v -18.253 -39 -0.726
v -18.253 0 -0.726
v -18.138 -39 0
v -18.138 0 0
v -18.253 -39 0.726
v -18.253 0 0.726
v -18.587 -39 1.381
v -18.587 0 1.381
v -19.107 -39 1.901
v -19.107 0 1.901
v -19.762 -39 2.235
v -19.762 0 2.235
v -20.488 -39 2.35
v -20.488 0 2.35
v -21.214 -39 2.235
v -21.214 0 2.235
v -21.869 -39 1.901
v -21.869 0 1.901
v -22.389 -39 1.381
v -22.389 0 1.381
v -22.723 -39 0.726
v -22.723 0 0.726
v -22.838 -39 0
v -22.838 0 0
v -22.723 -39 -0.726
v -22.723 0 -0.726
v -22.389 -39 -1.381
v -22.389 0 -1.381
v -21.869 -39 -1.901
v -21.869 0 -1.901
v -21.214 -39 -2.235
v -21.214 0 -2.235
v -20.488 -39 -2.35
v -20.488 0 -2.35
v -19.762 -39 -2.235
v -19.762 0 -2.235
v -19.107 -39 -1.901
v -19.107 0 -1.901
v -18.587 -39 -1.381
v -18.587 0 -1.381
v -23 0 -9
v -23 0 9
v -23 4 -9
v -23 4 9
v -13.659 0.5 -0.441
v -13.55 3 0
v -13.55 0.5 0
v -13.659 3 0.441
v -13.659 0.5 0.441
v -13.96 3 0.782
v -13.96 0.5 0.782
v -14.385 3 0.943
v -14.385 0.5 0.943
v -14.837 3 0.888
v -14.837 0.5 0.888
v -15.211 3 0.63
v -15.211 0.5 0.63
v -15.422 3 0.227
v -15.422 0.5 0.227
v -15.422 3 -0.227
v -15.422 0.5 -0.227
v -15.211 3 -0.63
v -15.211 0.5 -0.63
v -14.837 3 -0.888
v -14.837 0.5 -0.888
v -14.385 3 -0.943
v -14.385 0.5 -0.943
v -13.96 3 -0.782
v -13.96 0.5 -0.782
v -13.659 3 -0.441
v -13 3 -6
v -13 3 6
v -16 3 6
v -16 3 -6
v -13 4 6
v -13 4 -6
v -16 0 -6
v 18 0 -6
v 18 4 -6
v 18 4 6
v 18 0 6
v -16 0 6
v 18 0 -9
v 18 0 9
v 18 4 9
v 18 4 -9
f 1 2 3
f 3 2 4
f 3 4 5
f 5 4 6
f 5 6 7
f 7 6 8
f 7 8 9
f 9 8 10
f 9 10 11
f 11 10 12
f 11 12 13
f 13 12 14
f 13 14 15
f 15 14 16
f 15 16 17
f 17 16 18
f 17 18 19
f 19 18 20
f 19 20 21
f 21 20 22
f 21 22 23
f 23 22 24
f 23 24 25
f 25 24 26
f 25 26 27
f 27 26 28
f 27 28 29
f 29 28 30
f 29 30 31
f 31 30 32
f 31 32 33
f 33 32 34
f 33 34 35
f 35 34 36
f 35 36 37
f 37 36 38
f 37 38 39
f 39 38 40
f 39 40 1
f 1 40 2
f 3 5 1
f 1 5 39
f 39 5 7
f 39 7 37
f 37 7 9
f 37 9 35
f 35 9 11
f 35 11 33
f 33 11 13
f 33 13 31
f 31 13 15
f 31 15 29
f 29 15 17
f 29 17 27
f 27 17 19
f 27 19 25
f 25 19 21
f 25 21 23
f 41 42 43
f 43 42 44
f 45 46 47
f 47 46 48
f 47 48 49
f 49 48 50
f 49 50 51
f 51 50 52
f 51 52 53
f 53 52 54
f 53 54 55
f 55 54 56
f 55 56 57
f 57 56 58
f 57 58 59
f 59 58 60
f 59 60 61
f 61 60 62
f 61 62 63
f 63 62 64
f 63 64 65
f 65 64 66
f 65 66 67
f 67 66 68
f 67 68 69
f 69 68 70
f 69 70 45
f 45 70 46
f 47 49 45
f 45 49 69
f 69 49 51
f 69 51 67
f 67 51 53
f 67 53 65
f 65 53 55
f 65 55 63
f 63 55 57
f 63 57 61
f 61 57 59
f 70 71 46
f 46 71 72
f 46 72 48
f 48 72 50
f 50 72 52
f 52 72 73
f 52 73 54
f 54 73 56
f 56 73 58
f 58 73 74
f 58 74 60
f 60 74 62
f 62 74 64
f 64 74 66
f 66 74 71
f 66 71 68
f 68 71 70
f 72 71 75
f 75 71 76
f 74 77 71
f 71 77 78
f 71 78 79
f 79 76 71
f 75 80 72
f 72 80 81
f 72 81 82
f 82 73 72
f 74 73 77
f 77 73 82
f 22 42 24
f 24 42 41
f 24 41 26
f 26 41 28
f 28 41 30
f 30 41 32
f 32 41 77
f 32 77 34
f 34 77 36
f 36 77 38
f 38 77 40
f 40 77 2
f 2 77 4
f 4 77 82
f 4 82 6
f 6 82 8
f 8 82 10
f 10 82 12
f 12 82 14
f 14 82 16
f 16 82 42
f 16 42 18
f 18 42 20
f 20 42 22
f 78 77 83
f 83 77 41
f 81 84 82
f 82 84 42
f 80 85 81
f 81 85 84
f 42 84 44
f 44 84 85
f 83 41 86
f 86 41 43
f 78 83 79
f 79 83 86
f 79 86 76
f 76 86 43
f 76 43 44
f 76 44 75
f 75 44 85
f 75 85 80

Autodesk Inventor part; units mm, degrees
ref_plane "YZ Plane" through (0, 0, 0) normal (1, 0, 0) x (0, 1, 0)
ref_plane "XZ Plane" through (0, 0, 0) normal (0, 1, 0) x (-1, 0, 0)
ref_plane "XY Plane" through (0, 0, 0) normal (0, 0, 1) x (1, 0, 0)
sketch "Sketch1" plane through (0, 0, 0) normal (0, 1, 0) x (-1, 0, 0)
  line L0 (18, 9) -> (-18, 9)
  line L1 (-18, 9) -> (-18, -9)
  line L2 (-18, -9) -> (18, -9)
  line L3 (18, -9) -> (18, 9)
  line L4 (18, 9) -> (-18, -9) construction
  line L5 (-18, 9) -> (18, -9) construction
  point P0 (0, 0)
  dimension "d0" = 18
  dimension "d1" = 36
extrude "Extrusion1" add sketch "Sketch1" along normal blind 4
sketch "Sketch2" plane through (18, 0, 9) normal (1, 0, 0) x (0, 0, -1)
  line L0 (3, 9.8571) -> (15, 9.8571)
  line L1 (15, 9.8571) -> (15, 0)
  line L2 (15, 0) -> (3, 0)
  line L3 (3, 0) -> (3, 9.8571)
  line L4 (0.7991, 7.2165) -> (12.7991, -2.6406) construction
  line L5 (12.7991, 7.2165) -> (0.7991, -2.6406) construction
  line L6 (9, 0) -> (9, 4.0958)
  line L7 (9, 0) -> (15, 0)
  line L8 (0, 0) -> (18, 0) projected
  point P0 (6.7991, 2.2879)
  dimension "d4" = 12
  dimension "d22" = 6
extrude "Extrusion2" cut sketch "Sketch2" against normal blind 34
sketch "Sketch3" plane through (-16, 0, 9) normal (1, 0, 0) x (0, 0, -1)
  line L0 (3, 4) -> (15, 4) projected
  line L1 (15, 4) -> (15, 0) projected
  line L2 (3, 4) -> (15, 4)
  line L3 (15, 4) -> (15, 3)
  line L4 (15, 3) -> (3, 3)
  line L5 (3, 3) -> (3, 4)
  point P0 (9, 0)
  dimension "d7" = 1
extrude "Extrusion3" add sketch "Sketch3" along normal blind 3
sketch "Sketch4" plane through (-16, 3, -6) normal (0, -1, 0) x (1, 0, 0)
  line L0 (0, 12) -> (3, 12) projected
  line L1 (1.5, 12) -> (1.5, 0)
  line L2 (3, 0) -> (0, 0) projected
  line L3 (3, 0) -> (3, 12) projected
  line L4 (3, 6) -> (0, 6)
  line L5 (0, 0) -> (0, 12) projected
  circle A0 centre (1.5, 6) radius 0.95
  point P0 (16, 6)
  dimension "d10" = 1.9
extrude "Extrusion4" add sketch "Sketch4" along normal blind 2.5 contours A0 L4 L1 | L1 L4 A0 | L4 L1 A0 | L4 A0 L1
sketch "Sketch5" plane through (-18, 0, -9) normal (-1, 0, 0) x (0, 0, 1)
  line L0 (18, 0) -> (15, 0) projected
  line L1 (0, 0) -> (0, 4) projected
  line L2 (18, 0) -> (0, 0)
  line L3 (0, 0) -> (0, 1)
  line L4 (0, 1) -> (18, 1)
  line L5 (18, 1) -> (18, 0)
  point P0 (9, 0)
  dimension "d13" = 1
extrude "Extrusion5" add sketch "Sketch5" along normal blind 5
sketch "Sketch6" plane through (-18, 1, 9) normal (0, 1, 0) x (1, 0, 0)
  line L0 (0, 18) -> (0, 0) projected
  circle A0 centre (-2.4881, 9) radius 2.35
  line L1 (36, 18) -> (-5, 18) projected
  line L2 (-5, 18) -> (0, 18)
  line L3 (-2.5, 18) -> (-2.5, 0)
  line L4 (-5, 0) -> (-5, 18) projected
  line L5 (-5, 9) -> (0, 9)
  point P0 (18, 9)
  dimension "d17" = 4.7
extrude "Extrusion6" add sketch "Sketch6" against normal blind 40 contours L5 L3 A0 | A0 L3 L5 | L3 L5 A0 | A0 L5 L3
sketch "Sketch7" plane through (-18, 1, 9) normal (0, 1, 0) x (1, 0, 0)
  line L0 (0, 0) -> (-5, 0) projected
  line L1 (-5, 18) -> (-5, 0) projected
  line L2 (0, 0) -> (-5, 0)
  line L3 (-5, 0) -> (-5, 18)
  line L4 (-5, 18) -> (0, 18)
  line L5 (0, 18) -> (0, 0)
  point P0 (18, 9)
extrude "Extrusion7" add sketch "Sketch7" along normal blind 3
properties part number "ServoHållare"
